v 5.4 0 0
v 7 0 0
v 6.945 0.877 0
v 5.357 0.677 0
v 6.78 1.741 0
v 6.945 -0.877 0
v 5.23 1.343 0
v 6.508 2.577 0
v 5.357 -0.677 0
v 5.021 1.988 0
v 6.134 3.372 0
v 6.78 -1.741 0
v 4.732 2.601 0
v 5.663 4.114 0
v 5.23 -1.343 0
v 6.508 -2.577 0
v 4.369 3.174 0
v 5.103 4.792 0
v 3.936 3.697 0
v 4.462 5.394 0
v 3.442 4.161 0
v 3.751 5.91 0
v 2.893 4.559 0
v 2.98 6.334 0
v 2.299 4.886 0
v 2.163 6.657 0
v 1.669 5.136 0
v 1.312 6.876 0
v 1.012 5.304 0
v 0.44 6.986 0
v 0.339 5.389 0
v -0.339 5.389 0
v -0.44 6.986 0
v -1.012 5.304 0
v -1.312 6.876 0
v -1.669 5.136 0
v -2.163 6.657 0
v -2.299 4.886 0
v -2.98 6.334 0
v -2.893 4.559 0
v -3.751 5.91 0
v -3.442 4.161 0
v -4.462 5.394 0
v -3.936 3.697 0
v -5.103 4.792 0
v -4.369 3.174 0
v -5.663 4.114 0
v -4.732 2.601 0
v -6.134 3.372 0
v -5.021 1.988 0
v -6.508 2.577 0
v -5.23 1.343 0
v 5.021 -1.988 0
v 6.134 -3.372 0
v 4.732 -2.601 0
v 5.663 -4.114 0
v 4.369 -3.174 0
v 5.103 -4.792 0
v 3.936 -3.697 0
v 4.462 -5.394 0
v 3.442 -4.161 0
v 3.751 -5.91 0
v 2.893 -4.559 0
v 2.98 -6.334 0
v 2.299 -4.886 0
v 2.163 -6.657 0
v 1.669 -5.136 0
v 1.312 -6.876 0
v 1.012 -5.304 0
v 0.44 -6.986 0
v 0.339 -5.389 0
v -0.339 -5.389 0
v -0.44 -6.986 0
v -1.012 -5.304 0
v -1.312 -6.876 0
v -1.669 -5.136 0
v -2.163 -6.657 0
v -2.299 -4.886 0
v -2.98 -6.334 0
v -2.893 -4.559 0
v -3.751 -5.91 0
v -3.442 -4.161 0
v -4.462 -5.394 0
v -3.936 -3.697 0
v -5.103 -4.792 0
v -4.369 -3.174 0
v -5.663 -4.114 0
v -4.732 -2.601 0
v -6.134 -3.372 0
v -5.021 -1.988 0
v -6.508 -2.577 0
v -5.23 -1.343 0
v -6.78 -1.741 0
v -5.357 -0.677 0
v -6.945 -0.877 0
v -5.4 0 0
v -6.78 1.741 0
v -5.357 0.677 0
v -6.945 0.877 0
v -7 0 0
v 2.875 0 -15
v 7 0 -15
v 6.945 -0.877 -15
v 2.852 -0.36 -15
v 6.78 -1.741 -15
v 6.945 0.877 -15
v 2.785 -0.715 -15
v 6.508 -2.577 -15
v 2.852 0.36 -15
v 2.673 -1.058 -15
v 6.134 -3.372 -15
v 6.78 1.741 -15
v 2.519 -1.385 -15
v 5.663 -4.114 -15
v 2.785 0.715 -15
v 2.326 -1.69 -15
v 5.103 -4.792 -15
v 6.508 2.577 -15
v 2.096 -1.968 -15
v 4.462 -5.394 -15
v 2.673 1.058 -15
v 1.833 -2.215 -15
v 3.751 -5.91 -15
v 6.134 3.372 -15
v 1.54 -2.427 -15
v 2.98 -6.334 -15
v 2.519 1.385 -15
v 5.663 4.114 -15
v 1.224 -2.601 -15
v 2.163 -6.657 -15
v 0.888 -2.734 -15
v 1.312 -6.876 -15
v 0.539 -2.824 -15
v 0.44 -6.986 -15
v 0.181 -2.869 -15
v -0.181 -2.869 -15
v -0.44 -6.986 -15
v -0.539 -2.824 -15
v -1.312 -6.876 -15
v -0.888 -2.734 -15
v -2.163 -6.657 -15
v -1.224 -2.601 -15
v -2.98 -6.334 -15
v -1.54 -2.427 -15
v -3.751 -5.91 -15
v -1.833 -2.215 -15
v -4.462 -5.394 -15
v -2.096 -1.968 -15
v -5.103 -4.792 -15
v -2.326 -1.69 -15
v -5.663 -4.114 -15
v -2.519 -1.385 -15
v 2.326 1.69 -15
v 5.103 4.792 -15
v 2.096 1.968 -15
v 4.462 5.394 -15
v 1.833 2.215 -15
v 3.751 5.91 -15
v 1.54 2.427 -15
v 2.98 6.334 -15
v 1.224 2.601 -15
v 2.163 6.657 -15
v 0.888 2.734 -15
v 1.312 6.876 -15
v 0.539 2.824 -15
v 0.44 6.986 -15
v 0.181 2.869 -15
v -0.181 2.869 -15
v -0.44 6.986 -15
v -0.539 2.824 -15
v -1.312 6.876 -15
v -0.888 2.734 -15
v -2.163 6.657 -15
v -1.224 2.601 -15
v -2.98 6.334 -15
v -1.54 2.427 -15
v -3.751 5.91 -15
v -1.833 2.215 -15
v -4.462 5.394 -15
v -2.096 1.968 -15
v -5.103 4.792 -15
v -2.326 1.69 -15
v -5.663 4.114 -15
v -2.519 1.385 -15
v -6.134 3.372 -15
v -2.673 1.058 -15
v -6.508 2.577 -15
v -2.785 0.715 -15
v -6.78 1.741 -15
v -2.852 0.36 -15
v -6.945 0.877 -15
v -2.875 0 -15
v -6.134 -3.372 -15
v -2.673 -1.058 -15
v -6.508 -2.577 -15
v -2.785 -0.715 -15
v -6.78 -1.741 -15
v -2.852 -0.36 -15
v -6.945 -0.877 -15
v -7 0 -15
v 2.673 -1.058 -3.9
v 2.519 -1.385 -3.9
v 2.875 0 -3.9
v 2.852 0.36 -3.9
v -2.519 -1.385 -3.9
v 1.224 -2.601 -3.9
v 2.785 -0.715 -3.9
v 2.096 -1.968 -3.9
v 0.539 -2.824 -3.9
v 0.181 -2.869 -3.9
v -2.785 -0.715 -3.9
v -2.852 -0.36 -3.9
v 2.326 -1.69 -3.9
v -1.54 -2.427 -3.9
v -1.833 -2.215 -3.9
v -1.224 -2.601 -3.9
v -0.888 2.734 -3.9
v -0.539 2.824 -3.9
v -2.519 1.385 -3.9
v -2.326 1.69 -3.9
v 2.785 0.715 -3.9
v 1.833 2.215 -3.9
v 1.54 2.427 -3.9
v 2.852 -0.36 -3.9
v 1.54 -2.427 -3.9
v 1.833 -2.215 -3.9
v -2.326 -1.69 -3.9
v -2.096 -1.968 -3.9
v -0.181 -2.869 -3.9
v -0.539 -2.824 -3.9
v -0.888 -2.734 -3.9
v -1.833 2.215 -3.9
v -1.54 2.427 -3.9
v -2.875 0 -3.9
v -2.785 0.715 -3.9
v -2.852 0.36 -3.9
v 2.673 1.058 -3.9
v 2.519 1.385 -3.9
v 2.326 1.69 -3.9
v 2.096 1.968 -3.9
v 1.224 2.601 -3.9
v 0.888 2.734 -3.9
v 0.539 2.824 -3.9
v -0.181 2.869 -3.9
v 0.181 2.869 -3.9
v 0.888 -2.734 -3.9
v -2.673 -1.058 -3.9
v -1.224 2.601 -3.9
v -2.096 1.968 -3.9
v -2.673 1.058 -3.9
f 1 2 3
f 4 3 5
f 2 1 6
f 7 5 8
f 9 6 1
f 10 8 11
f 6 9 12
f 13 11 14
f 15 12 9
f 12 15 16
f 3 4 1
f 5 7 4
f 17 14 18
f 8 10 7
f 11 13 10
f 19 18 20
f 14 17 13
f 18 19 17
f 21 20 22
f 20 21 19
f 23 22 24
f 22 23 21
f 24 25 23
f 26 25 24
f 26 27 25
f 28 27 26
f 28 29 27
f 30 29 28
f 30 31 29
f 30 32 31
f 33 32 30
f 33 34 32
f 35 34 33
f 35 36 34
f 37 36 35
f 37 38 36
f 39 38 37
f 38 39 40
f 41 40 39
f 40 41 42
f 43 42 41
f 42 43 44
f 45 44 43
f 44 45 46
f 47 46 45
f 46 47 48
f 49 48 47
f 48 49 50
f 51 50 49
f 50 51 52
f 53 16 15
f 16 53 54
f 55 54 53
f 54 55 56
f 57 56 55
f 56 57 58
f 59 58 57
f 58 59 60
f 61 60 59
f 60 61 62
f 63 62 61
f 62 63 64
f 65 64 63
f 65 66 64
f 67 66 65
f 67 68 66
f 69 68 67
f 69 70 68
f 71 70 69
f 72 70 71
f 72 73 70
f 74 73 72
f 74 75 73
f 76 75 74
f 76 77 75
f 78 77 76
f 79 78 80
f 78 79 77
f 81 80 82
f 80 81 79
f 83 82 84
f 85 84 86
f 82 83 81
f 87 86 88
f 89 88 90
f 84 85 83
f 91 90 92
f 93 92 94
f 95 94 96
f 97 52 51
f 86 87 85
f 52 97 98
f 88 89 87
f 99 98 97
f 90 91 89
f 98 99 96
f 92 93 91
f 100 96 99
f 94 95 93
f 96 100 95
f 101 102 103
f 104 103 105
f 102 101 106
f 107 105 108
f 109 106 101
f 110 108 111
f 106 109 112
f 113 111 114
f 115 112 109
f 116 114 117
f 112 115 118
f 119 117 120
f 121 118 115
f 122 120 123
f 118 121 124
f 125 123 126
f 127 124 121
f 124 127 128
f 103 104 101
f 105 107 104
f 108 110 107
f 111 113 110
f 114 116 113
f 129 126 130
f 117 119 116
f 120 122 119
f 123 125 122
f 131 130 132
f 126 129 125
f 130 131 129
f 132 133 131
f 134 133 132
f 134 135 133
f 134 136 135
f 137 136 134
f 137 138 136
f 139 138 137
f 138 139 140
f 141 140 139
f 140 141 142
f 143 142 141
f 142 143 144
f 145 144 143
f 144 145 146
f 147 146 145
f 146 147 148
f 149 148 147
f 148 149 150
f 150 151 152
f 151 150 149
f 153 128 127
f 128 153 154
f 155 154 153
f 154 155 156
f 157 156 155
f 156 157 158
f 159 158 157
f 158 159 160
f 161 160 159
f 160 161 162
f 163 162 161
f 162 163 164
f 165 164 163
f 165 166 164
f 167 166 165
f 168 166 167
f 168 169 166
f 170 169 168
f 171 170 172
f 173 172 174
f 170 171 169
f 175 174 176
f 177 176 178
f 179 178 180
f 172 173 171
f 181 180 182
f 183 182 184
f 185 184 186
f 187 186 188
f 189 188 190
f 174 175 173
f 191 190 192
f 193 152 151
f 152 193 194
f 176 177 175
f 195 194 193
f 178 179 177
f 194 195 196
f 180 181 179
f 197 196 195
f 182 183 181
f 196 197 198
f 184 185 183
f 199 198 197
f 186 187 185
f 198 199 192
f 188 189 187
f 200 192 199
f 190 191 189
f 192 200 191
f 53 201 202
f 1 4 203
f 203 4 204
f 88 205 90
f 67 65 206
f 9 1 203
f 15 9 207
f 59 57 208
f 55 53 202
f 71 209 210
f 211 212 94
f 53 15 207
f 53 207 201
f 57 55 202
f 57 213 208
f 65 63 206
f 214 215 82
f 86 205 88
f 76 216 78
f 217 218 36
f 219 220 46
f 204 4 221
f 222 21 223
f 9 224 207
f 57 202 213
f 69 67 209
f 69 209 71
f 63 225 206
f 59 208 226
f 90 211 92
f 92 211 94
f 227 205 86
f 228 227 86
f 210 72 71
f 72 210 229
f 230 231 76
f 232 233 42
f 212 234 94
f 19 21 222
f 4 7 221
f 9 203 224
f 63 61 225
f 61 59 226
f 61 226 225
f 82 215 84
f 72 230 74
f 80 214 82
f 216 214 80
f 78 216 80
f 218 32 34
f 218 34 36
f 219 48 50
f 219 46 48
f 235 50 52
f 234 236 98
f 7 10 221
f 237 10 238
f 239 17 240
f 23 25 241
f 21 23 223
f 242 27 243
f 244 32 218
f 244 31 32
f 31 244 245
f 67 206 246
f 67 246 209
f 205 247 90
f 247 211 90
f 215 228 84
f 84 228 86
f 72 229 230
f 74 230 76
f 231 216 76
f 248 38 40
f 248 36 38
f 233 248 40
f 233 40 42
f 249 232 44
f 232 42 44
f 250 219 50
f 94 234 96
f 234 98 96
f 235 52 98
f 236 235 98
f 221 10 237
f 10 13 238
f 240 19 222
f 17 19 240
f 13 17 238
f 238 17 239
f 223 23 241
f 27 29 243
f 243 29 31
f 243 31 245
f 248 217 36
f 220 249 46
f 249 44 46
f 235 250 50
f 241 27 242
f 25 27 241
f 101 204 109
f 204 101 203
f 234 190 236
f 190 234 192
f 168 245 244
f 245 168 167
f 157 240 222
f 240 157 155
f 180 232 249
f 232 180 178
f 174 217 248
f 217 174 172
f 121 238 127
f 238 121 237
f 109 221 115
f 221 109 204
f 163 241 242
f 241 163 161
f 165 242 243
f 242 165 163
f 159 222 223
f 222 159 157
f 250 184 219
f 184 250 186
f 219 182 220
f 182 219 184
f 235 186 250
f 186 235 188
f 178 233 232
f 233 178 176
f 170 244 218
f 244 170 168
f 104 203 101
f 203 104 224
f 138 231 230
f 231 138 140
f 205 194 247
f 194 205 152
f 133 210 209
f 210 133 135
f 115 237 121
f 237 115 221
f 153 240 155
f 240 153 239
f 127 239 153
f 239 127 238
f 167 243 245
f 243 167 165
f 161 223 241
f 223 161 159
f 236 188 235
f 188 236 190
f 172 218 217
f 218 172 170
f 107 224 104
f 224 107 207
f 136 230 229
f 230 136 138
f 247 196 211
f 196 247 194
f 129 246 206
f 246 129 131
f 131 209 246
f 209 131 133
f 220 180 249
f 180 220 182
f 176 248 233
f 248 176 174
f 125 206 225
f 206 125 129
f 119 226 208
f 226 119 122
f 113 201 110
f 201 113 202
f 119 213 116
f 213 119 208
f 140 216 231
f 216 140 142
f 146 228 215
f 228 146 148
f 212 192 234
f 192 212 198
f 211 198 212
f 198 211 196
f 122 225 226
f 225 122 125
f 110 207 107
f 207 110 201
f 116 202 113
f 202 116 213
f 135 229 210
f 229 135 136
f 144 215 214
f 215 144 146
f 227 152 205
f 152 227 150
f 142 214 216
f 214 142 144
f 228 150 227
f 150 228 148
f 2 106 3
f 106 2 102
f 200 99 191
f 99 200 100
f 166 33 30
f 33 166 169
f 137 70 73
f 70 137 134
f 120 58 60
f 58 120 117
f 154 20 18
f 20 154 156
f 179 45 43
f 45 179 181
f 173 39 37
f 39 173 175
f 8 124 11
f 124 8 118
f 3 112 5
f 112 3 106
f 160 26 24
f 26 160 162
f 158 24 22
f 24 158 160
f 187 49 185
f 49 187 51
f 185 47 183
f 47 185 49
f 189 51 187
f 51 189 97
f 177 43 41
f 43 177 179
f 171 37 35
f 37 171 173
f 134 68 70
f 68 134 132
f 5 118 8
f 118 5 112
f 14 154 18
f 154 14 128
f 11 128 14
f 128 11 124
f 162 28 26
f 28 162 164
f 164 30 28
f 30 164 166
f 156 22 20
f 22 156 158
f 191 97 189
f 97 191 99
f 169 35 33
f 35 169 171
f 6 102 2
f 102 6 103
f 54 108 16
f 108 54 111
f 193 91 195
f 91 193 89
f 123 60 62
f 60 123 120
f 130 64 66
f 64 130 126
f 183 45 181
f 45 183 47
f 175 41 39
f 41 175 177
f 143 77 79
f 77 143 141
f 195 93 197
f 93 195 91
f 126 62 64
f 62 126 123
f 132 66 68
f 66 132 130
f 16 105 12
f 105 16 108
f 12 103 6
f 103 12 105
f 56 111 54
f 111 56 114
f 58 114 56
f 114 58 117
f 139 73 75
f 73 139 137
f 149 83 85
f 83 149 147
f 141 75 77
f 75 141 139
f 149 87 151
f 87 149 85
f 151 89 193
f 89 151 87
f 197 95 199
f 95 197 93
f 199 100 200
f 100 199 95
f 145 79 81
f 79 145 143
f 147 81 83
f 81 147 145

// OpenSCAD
$fn = 50;


difference() {
	union() {
		translate(v = [0, 0, -15.0000000000]) {
			cylinder(h = 15, r = 7.0000000000);
		}
		cylinder(h = 0, r = 16.0000000000);
	}
	union() {
		translate(v = [0, 0, 0]) {
			rotate(a = [0, 0, 0]) {
				difference() {
					union() {
						#translate(v = [0, 0, -15.0000000000]) {
							cylinder(h = 15, r = 2.6000000000);
						}
						#translate(v = [0, 0, -3.9000000000]) {
							cylinder(h = 3.9000000000, r1 = 2.8750000000, r2 = 5.4000000000);
						}
						#translate(v = [0, 0, -15.0000000000]) {
							cylinder(h = 15, r = 2.8750000000);
						}
						#translate(v = [0, 0, -15.0000000000]) {
							cylinder(h = 15, r = 2.6000000000);
						}
					}
					union();
				}
			}
		}
	}
}
